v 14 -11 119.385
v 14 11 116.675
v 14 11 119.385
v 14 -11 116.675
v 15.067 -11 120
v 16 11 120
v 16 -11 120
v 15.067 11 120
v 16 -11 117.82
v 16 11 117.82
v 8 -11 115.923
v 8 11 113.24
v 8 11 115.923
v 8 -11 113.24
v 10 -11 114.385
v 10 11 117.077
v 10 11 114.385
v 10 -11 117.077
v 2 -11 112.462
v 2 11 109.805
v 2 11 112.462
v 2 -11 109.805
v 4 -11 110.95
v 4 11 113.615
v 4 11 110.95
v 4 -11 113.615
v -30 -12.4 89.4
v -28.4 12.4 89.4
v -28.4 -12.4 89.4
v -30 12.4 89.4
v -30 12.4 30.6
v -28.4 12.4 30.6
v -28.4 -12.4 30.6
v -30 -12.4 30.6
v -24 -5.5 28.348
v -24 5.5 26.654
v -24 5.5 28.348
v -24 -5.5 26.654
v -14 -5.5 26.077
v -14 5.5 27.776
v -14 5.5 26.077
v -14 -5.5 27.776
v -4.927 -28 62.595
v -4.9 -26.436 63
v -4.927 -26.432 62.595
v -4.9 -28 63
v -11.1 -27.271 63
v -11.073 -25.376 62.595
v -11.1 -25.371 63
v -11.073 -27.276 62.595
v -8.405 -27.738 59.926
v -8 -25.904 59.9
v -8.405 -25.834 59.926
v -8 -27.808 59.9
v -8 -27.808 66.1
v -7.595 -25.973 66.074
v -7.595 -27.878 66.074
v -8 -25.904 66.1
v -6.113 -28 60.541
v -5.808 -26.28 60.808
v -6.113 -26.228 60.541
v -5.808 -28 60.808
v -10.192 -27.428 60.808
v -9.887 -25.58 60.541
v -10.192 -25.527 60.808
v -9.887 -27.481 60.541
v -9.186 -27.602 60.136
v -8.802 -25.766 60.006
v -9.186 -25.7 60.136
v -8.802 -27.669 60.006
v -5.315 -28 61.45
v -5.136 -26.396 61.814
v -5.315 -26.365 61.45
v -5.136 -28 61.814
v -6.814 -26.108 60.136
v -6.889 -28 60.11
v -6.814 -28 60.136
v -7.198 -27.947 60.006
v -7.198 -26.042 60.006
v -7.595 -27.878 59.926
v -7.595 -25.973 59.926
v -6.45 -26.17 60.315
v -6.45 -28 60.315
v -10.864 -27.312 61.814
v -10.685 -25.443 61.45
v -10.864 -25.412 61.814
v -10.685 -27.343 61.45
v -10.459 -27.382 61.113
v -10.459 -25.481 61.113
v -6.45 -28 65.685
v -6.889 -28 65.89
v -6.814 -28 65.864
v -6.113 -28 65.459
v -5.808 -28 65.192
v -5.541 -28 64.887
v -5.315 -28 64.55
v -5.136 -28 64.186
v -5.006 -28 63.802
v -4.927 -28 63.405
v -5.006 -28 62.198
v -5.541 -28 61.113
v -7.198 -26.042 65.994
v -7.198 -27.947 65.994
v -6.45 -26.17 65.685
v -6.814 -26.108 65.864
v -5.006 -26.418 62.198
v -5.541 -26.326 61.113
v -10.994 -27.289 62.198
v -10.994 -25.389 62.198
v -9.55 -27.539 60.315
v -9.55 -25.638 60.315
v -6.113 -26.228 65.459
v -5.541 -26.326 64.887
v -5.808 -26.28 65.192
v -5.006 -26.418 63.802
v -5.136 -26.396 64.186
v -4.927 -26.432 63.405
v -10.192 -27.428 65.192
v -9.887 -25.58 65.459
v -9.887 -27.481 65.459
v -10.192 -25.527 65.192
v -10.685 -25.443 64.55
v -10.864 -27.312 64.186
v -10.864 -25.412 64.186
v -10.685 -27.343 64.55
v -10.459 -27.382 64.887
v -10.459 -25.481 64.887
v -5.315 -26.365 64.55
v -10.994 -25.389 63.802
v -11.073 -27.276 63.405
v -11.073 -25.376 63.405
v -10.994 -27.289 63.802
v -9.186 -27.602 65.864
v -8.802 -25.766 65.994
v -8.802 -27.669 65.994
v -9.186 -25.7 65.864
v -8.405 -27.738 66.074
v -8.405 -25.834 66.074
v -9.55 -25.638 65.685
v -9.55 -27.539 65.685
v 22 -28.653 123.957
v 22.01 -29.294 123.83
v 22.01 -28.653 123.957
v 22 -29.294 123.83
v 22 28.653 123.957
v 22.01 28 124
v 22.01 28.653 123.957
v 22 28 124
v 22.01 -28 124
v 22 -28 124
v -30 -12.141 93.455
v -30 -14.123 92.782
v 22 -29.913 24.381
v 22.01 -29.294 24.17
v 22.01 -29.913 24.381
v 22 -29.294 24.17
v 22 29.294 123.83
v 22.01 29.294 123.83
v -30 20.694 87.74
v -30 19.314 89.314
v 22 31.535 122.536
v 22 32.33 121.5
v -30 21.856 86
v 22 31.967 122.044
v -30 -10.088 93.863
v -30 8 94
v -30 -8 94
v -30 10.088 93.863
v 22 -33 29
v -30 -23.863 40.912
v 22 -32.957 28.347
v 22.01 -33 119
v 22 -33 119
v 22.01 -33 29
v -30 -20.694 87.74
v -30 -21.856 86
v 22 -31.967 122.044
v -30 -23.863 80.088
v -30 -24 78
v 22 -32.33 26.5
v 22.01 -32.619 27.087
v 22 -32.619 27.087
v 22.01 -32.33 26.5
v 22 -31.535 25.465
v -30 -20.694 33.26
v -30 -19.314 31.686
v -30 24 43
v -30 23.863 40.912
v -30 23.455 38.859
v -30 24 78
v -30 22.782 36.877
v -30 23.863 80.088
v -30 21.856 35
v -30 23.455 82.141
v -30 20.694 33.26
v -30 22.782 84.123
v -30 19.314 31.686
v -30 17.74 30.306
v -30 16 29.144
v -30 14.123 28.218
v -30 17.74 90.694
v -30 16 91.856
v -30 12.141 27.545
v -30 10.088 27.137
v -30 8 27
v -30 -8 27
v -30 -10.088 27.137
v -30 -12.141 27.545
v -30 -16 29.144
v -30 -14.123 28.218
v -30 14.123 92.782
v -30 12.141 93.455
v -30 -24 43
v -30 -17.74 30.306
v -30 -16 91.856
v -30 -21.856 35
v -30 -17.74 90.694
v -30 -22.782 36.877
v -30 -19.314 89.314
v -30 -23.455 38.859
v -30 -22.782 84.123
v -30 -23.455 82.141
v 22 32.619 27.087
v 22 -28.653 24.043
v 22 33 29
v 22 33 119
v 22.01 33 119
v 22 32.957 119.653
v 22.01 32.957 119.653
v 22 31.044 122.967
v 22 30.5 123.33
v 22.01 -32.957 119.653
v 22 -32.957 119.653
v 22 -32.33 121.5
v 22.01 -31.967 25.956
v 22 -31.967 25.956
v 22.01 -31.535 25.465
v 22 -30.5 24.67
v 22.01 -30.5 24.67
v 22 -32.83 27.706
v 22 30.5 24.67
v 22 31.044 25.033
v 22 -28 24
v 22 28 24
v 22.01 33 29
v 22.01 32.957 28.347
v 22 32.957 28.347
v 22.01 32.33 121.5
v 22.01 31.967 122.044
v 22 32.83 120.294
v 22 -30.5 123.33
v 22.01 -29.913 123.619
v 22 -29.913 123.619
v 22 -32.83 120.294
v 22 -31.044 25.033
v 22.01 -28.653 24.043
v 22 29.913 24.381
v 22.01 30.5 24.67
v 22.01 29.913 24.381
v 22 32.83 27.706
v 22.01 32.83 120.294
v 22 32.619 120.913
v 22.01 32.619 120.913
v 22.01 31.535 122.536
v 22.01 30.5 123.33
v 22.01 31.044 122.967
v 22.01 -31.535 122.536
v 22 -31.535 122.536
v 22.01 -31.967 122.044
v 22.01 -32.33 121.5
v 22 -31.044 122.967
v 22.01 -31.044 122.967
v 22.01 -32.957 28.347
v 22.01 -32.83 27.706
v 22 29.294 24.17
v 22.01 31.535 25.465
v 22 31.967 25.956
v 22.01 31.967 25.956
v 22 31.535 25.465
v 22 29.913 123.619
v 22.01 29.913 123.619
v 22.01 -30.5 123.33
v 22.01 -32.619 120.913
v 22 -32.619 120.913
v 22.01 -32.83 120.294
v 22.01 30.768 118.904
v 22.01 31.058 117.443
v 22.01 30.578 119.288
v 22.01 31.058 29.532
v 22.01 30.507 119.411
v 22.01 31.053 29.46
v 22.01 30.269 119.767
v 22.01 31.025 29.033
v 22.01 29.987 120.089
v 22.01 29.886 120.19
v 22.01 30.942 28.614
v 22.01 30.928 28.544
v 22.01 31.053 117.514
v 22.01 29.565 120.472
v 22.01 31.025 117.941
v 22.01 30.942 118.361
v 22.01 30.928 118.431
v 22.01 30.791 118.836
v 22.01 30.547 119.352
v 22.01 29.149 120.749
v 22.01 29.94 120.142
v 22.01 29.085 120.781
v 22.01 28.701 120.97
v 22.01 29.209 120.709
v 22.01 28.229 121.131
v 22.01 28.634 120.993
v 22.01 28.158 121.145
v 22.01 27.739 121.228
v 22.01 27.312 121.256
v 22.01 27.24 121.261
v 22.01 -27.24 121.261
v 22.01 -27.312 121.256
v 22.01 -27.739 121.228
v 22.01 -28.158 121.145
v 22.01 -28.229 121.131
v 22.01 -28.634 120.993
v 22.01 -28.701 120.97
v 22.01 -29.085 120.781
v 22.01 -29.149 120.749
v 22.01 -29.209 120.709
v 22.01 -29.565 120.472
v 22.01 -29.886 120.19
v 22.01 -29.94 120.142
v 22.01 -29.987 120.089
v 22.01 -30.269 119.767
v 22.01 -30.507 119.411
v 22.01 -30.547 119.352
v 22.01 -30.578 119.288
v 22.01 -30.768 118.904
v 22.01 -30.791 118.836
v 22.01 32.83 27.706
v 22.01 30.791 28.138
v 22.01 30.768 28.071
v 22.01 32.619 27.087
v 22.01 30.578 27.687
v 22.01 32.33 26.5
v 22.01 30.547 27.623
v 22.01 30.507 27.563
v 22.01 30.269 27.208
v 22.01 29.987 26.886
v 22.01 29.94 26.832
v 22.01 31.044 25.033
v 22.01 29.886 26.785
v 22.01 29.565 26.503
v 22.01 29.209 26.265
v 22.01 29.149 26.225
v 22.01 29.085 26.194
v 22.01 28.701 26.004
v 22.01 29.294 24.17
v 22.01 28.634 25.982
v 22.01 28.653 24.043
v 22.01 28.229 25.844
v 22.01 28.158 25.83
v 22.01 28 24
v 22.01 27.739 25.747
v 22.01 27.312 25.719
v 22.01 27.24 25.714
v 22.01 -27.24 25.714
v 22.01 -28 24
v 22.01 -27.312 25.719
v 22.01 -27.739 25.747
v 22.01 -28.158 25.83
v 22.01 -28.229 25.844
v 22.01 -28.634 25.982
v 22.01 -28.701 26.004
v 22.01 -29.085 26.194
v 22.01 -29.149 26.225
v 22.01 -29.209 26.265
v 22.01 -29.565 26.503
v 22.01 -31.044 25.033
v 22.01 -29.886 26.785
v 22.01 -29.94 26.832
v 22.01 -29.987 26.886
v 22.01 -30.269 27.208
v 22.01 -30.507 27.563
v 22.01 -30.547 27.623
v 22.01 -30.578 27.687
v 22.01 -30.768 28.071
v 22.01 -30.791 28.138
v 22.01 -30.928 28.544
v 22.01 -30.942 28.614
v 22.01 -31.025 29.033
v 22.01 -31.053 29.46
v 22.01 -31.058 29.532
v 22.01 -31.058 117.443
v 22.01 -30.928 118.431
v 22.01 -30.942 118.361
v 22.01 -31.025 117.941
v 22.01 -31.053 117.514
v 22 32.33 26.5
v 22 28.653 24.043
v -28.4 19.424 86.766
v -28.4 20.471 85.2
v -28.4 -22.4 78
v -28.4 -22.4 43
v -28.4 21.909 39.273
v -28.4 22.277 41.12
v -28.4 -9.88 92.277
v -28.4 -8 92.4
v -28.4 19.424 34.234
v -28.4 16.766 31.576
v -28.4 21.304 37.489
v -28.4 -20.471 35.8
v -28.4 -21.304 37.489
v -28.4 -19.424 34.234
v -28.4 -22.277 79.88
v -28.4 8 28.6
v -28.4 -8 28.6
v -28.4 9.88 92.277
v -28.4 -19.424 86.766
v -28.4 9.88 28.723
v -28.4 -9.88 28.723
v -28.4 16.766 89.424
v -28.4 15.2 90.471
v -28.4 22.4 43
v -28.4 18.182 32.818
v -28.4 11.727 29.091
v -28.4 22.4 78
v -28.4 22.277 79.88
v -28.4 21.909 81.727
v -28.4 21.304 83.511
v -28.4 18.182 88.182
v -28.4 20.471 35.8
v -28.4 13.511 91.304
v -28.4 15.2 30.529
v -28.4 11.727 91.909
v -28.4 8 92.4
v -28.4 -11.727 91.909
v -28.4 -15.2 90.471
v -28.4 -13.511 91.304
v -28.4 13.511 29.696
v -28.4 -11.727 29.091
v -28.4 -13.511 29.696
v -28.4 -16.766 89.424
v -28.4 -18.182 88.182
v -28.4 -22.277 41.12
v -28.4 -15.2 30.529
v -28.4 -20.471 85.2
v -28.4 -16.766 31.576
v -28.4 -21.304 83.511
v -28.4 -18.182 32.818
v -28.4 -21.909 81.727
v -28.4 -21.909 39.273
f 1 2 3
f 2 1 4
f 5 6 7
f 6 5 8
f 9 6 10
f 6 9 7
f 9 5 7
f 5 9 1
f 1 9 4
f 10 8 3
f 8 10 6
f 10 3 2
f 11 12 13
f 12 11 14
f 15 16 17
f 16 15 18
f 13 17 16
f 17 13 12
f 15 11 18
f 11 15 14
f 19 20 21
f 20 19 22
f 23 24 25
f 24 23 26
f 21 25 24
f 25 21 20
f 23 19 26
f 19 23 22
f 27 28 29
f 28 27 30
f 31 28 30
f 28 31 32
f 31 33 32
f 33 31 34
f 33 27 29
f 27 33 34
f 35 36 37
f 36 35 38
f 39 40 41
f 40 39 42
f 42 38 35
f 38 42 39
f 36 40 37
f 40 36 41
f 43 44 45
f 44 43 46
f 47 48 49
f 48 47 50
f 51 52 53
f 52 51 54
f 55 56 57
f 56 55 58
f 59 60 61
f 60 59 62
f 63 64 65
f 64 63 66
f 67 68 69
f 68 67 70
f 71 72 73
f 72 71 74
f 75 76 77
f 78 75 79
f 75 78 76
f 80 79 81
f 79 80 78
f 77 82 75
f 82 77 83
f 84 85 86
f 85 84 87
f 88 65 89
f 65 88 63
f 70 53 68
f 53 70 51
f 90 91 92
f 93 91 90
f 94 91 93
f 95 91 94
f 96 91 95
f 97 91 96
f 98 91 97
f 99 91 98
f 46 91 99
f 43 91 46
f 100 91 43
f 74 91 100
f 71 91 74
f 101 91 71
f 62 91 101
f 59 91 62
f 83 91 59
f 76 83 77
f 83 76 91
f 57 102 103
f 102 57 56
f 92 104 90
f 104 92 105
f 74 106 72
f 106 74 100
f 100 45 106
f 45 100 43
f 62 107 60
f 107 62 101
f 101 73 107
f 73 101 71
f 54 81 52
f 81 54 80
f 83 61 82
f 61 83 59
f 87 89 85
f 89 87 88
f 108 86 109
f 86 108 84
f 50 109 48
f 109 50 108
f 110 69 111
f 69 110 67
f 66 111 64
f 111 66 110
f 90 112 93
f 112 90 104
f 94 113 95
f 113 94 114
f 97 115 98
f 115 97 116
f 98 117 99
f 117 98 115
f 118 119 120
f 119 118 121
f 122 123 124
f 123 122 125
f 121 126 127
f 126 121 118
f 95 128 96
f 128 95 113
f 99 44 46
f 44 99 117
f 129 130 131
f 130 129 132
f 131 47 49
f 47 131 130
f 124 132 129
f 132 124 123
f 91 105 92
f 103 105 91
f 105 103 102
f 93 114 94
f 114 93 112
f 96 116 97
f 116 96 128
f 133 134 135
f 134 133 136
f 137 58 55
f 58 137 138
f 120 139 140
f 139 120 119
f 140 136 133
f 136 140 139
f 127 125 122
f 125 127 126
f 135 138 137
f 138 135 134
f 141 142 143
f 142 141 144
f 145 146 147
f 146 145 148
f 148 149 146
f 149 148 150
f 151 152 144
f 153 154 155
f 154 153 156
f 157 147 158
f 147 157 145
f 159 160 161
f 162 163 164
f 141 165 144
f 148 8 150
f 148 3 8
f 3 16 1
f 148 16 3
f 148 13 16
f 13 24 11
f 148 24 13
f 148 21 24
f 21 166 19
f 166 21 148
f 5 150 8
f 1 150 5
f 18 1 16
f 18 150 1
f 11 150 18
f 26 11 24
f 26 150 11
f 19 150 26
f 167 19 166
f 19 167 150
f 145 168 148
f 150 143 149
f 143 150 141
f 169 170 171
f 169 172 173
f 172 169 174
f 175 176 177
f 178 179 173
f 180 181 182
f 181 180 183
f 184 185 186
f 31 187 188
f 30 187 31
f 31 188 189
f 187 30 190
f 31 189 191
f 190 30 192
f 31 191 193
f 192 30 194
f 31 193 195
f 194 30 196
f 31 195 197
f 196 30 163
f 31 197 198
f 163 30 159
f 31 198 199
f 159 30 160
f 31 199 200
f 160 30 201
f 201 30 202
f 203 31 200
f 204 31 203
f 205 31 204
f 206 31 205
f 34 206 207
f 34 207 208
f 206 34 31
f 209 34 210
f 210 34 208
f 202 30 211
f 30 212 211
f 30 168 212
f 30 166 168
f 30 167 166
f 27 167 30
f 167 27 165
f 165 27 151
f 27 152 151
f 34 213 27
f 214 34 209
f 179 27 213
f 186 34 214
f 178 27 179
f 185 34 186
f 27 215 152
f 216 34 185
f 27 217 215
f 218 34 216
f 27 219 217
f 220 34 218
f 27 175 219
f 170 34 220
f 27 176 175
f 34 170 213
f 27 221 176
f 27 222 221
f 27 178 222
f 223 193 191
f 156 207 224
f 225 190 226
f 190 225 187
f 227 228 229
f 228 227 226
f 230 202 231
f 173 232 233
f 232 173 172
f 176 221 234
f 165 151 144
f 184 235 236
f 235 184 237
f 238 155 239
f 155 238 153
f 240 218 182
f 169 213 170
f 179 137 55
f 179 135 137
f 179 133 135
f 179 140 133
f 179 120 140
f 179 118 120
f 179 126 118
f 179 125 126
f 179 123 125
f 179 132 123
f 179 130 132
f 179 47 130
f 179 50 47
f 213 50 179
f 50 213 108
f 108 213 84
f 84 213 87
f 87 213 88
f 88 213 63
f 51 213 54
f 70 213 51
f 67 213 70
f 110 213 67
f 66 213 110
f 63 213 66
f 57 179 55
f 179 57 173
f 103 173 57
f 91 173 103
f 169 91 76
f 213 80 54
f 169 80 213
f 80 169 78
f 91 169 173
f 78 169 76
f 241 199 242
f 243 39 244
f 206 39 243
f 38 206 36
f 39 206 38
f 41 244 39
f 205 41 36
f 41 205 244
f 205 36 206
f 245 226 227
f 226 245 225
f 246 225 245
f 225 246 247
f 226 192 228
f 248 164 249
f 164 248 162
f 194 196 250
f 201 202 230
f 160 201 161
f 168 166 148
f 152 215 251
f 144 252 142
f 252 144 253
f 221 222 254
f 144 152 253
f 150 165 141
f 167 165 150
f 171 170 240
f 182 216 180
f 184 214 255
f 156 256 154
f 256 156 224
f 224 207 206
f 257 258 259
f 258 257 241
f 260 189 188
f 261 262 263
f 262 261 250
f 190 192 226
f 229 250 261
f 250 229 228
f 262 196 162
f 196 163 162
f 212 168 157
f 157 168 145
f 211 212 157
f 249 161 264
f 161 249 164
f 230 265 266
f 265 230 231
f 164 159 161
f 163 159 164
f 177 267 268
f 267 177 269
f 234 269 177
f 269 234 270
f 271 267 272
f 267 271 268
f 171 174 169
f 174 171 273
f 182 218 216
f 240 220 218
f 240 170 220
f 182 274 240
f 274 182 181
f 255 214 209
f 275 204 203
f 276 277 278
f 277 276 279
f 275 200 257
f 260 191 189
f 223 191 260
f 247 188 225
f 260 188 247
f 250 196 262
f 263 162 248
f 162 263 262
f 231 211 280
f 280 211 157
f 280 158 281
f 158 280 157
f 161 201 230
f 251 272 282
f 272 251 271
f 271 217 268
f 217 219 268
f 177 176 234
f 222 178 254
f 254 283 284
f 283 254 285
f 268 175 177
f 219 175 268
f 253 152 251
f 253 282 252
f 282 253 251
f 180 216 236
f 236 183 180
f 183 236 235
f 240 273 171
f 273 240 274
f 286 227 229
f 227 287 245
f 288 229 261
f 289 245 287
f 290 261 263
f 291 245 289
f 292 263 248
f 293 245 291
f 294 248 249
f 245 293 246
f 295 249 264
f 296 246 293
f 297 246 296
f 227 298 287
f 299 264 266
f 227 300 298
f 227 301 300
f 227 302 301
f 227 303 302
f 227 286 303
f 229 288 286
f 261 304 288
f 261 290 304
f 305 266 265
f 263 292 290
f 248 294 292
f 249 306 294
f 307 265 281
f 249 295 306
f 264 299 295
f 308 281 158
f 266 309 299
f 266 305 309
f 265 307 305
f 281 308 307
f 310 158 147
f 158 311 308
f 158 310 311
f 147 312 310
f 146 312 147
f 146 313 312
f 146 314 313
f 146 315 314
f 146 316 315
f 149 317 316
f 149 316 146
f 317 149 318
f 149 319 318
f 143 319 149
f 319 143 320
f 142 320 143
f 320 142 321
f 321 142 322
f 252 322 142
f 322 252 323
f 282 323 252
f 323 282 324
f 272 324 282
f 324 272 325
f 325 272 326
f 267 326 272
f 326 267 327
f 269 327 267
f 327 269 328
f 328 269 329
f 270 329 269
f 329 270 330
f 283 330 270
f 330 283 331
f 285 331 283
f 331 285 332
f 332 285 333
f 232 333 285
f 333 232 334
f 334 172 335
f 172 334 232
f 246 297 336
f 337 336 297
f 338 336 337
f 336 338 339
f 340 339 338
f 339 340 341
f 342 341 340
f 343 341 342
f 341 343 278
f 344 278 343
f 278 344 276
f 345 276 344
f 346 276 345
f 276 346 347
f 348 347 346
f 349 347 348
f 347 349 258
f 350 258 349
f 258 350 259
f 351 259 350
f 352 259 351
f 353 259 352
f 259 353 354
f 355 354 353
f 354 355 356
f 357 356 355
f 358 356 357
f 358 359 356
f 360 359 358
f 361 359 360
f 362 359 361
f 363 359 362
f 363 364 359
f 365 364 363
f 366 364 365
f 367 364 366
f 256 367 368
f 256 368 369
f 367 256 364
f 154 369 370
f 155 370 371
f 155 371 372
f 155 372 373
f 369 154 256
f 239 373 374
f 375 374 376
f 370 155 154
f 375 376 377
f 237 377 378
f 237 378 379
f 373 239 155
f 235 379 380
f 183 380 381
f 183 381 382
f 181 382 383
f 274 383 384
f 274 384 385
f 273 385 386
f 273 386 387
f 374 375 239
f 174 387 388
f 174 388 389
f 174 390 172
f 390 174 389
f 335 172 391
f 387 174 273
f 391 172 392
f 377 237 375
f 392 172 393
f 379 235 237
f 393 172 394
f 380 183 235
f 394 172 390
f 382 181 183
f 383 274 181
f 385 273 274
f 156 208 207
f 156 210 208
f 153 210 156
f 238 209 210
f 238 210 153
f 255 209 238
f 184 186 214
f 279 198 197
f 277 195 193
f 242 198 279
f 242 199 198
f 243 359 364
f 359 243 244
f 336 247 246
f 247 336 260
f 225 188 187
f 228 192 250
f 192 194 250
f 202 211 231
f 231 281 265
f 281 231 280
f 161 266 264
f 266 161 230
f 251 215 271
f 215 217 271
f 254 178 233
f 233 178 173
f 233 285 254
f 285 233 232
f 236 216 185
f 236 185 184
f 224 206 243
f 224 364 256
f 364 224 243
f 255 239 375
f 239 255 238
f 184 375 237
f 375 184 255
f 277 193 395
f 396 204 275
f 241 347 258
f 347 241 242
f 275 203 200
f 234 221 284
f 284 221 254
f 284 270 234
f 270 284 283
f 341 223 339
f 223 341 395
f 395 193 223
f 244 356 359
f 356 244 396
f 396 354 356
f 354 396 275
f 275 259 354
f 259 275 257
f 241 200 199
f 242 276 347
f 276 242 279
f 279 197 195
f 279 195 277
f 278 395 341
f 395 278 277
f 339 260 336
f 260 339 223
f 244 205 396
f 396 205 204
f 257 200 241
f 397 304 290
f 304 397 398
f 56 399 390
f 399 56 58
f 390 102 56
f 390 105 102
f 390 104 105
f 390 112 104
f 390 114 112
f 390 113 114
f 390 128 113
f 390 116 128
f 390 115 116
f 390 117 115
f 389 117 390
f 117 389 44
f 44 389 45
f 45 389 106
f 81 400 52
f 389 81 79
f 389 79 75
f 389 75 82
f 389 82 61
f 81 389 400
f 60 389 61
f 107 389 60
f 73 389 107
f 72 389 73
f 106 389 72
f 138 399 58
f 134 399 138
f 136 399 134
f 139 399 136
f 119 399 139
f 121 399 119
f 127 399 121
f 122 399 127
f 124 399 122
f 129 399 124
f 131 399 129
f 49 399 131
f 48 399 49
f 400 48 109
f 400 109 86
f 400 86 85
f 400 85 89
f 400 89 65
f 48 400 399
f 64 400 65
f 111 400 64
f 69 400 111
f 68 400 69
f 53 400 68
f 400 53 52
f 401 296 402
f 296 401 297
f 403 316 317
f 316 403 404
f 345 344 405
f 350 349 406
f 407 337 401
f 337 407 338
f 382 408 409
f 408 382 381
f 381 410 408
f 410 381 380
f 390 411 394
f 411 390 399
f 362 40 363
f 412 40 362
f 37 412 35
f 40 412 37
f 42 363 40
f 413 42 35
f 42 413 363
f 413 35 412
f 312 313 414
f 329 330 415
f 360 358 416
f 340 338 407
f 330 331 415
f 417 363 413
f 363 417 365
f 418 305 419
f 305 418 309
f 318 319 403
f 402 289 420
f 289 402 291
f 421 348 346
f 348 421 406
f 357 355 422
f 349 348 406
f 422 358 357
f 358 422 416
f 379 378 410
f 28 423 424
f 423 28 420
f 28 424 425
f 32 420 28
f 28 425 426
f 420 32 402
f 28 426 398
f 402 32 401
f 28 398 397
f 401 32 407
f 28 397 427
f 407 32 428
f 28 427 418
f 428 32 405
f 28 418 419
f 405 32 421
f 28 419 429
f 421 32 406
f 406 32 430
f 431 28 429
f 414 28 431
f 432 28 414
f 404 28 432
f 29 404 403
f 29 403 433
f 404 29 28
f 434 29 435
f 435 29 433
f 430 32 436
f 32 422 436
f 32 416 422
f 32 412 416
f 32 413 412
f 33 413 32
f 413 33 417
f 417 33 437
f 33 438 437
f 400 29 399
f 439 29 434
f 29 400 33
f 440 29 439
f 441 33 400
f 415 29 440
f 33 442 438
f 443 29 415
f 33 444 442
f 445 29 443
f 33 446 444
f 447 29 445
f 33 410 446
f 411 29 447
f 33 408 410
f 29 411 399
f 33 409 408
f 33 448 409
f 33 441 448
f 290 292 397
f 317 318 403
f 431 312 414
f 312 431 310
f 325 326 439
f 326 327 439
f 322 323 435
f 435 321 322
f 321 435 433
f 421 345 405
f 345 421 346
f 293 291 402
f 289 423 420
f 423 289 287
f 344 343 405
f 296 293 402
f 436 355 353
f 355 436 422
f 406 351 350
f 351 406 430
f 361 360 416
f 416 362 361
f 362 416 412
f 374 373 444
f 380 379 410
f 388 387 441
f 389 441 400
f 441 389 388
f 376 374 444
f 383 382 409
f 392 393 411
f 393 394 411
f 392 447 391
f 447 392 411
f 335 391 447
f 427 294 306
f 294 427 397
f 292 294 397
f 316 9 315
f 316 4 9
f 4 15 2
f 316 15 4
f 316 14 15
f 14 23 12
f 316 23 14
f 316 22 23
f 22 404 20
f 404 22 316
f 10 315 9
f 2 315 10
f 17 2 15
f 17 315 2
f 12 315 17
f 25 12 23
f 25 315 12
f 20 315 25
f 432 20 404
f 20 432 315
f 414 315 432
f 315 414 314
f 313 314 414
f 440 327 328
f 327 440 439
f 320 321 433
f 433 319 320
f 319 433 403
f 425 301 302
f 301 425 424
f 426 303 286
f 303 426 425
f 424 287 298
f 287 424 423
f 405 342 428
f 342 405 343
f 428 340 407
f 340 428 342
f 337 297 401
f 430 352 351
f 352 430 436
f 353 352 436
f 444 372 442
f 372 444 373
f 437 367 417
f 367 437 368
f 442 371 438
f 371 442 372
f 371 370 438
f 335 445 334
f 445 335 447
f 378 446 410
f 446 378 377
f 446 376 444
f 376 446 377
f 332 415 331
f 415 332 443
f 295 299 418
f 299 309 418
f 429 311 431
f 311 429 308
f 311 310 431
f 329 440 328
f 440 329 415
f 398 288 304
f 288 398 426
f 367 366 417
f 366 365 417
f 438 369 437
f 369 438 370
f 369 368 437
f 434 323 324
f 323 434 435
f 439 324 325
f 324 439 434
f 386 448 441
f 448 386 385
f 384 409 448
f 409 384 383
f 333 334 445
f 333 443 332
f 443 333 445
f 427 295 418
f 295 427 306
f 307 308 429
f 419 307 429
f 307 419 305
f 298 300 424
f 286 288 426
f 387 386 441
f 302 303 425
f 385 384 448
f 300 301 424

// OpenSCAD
// file: torso.scad
// MicroCluck torso layout and shell parameters. Millimetres.
//
// Frame (the simulation's trunk frame): x forward, y to the robot's left, z up. The origin is the hip level
// of Pollen's trunk. Hips sit at x = 6 mm, y = +-17.5 mm; the hip-yaw servos top out at z = 22.5 mm.
//
// PART LAYOUT. These must match PARTS in the sim repo's robot/microcluck/build_walk_model.py: a test there
// compares this file (copied into the sim's assets by tools/build_shell.sh) against PARTS. Masses live in
// the sim; this file only owns geometry. Every layout value is a PLACEHOLDER until the parts are weighed
// and measured (PRD H3).

chassis_pos     = [4, 0, 0];       chassis_size     = [40, 60, 32];
hipservos_pos   = [6, 0, 11.5];    hipservos_size   = [24, 50, 22];
board_pos       = [30, 0, 75];     board_size       = [10, 56, 98];     // Freenove 3.5" board (guess)
bezel_pos       = [29, 0, 75];     bezel_size       = [14, 66, 108];
battery_pos     = [11.5, 0, 60];   battery_size     = [19, 38, 65];     // 2S pack
electronics_pos = [-8, 0, 55];     electronics_size = [16, 46, 40];     // INA226, logic buck, buffer, wiring
comb_pos        = [25, 0, 139];    comb_size        = [10, 12, 20];
tail_pos        = [-45, 0, 60];    tail_size        = [30, 30, 70];

// SHELL: a hollow body that joins the screen bezel's back face to the tail's front face. Front open
// (the bezel closes it), rear wall with a tail socket, thin PETG-like walls.
bezel_back_x    = bezel_pos[0] - bezel_size[0] / 2;     // 22
tail_front_x    = tail_pos[0] + tail_size[0] / 2;       // -30

shell_wall      = 1.6;
// The numbers below were chosen with the sim's checks (scripts/microcluck_shell_clearance.py): the battery and
// electronics blocks must sit inside the cavity, and the legs must stay clear of the shell over the stock walker's
// real gait poses plus a stress sweep of the joint ranges.
shell_floor_z   = 24;     // lowest point at the front, just above the hip servos (22.5); the battery's lower edge (27.5) clears it
shell_front_hw  = 33;     // half width at the bezel (= the bezel's half width)
shell_front_top = 124;    // just under the bezel top (129)
shell_rear_hw   = 24;     // half width at the tail: wide enough that the 46 mm electronics block fits
shell_rear_z0   = 27;     // rear floor, a little higher than the front: the thighs swing back under it
shell_rear_z1   = 94;     // rear top: the back slopes down to the tail's top (95)
shell_corner_r  = 5;      // corner radius of the front section (small, so the battery's corners fit)
shell_corner_rr = 16;     // corner radius of the rear section: rounds the lower rear corners away from the thighs

tail_socket_gap = 0.4;    // clearance around the tail's mounting stub
usb_slot        = [11, 4.5];     // USB-C opening in the rear underside: width (y), height (z)
switch_dia      = 6.2;           // power-switch hole in the right-hand wall
vent_slots      = 3;             // slots in the top, behind the bezel
vent_len        = 22;
vent_w          = 2;

density_g_cm3   = 1.27;   // PETG, for the mass estimate only
// main file
// MicroCluck body shell: joins the screen bezel's back face to the tail's front face.
//   openscad -o build/shell.stl          shell.scad     the hollow, printable shell
//   openscad -D 'envelope=true' -o build/shell_envelope.stl shell.scad   the solid outer shape (clearance checks)
include <torso.scad>

envelope = false;   // true: the solid outer shape, no cavity and no cut-outs
$fn = 48;

// A thin rounded-rectangle slab at position x (axis along x): used as the end caps of a hull.
module slab(x, hw, z0, z1, r) {
    hull()
        for (sy = [-1, 1], z = [z0 + r, z1 - r])
            translate([x, sy * (hw - r), z]) rotate([0, 90, 0]) cylinder(r = r, h = 0.01);
}

module outer() {
    hull() {
        slab(bezel_back_x, shell_front_hw, shell_floor_z, shell_front_top, shell_corner_r);
        slab(tail_front_x, shell_rear_hw, shell_rear_z0, shell_rear_z1, shell_corner_rr);
    }
}

module cavity() {
    // open at the front (starts 2 mm in front of the bezel face), closed by a wall at the rear
    hull() {
        slab(bezel_back_x + 2, shell_front_hw - shell_wall, shell_floor_z + shell_wall,
             shell_front_top - shell_wall, shell_corner_r - shell_wall);
        slab(tail_front_x + shell_wall, shell_rear_hw - shell_wall, shell_rear_z0 + shell_wall,
             shell_rear_z1 - shell_wall, shell_corner_rr - shell_wall);
    }
}

module cutouts() {
    // tail socket through the rear wall: the tail's footprint plus clearance
    translate([tail_front_x - 1, -(tail_size[1] / 2 - 3 + tail_socket_gap), tail_pos[2] - (tail_size[2] / 2 - 6) - tail_socket_gap])
        cube([shell_wall + 2, tail_size[1] - 6 + 2 * tail_socket_gap, tail_size[2] - 12 + 2 * tail_socket_gap]);
    // USB-C slot, rear underside
    translate([tail_front_x + 6, -usb_slot[0] / 2, shell_rear_z0 - 1]) cube([10, usb_slot[0], usb_slot[1] + 1]);
    // power-switch hole, right-hand wall (-y), behind the battery
    translate([electronics_pos[0], -shell_rear_hw - 4, electronics_pos[2] + 8]) rotate([-90, 0, 0]) cylinder(d = switch_dia, h = 12);
    // vent slots in the top, behind the bezel
    for (i = [0 : vent_slots - 1])
        translate([bezel_back_x - 8 - i * 6, -vent_len / 2, 40]) cube([vent_w, vent_len, 80]);
}

if (envelope) outer();
else difference() {
    outer();
    cavity();
    cutouts();
}
